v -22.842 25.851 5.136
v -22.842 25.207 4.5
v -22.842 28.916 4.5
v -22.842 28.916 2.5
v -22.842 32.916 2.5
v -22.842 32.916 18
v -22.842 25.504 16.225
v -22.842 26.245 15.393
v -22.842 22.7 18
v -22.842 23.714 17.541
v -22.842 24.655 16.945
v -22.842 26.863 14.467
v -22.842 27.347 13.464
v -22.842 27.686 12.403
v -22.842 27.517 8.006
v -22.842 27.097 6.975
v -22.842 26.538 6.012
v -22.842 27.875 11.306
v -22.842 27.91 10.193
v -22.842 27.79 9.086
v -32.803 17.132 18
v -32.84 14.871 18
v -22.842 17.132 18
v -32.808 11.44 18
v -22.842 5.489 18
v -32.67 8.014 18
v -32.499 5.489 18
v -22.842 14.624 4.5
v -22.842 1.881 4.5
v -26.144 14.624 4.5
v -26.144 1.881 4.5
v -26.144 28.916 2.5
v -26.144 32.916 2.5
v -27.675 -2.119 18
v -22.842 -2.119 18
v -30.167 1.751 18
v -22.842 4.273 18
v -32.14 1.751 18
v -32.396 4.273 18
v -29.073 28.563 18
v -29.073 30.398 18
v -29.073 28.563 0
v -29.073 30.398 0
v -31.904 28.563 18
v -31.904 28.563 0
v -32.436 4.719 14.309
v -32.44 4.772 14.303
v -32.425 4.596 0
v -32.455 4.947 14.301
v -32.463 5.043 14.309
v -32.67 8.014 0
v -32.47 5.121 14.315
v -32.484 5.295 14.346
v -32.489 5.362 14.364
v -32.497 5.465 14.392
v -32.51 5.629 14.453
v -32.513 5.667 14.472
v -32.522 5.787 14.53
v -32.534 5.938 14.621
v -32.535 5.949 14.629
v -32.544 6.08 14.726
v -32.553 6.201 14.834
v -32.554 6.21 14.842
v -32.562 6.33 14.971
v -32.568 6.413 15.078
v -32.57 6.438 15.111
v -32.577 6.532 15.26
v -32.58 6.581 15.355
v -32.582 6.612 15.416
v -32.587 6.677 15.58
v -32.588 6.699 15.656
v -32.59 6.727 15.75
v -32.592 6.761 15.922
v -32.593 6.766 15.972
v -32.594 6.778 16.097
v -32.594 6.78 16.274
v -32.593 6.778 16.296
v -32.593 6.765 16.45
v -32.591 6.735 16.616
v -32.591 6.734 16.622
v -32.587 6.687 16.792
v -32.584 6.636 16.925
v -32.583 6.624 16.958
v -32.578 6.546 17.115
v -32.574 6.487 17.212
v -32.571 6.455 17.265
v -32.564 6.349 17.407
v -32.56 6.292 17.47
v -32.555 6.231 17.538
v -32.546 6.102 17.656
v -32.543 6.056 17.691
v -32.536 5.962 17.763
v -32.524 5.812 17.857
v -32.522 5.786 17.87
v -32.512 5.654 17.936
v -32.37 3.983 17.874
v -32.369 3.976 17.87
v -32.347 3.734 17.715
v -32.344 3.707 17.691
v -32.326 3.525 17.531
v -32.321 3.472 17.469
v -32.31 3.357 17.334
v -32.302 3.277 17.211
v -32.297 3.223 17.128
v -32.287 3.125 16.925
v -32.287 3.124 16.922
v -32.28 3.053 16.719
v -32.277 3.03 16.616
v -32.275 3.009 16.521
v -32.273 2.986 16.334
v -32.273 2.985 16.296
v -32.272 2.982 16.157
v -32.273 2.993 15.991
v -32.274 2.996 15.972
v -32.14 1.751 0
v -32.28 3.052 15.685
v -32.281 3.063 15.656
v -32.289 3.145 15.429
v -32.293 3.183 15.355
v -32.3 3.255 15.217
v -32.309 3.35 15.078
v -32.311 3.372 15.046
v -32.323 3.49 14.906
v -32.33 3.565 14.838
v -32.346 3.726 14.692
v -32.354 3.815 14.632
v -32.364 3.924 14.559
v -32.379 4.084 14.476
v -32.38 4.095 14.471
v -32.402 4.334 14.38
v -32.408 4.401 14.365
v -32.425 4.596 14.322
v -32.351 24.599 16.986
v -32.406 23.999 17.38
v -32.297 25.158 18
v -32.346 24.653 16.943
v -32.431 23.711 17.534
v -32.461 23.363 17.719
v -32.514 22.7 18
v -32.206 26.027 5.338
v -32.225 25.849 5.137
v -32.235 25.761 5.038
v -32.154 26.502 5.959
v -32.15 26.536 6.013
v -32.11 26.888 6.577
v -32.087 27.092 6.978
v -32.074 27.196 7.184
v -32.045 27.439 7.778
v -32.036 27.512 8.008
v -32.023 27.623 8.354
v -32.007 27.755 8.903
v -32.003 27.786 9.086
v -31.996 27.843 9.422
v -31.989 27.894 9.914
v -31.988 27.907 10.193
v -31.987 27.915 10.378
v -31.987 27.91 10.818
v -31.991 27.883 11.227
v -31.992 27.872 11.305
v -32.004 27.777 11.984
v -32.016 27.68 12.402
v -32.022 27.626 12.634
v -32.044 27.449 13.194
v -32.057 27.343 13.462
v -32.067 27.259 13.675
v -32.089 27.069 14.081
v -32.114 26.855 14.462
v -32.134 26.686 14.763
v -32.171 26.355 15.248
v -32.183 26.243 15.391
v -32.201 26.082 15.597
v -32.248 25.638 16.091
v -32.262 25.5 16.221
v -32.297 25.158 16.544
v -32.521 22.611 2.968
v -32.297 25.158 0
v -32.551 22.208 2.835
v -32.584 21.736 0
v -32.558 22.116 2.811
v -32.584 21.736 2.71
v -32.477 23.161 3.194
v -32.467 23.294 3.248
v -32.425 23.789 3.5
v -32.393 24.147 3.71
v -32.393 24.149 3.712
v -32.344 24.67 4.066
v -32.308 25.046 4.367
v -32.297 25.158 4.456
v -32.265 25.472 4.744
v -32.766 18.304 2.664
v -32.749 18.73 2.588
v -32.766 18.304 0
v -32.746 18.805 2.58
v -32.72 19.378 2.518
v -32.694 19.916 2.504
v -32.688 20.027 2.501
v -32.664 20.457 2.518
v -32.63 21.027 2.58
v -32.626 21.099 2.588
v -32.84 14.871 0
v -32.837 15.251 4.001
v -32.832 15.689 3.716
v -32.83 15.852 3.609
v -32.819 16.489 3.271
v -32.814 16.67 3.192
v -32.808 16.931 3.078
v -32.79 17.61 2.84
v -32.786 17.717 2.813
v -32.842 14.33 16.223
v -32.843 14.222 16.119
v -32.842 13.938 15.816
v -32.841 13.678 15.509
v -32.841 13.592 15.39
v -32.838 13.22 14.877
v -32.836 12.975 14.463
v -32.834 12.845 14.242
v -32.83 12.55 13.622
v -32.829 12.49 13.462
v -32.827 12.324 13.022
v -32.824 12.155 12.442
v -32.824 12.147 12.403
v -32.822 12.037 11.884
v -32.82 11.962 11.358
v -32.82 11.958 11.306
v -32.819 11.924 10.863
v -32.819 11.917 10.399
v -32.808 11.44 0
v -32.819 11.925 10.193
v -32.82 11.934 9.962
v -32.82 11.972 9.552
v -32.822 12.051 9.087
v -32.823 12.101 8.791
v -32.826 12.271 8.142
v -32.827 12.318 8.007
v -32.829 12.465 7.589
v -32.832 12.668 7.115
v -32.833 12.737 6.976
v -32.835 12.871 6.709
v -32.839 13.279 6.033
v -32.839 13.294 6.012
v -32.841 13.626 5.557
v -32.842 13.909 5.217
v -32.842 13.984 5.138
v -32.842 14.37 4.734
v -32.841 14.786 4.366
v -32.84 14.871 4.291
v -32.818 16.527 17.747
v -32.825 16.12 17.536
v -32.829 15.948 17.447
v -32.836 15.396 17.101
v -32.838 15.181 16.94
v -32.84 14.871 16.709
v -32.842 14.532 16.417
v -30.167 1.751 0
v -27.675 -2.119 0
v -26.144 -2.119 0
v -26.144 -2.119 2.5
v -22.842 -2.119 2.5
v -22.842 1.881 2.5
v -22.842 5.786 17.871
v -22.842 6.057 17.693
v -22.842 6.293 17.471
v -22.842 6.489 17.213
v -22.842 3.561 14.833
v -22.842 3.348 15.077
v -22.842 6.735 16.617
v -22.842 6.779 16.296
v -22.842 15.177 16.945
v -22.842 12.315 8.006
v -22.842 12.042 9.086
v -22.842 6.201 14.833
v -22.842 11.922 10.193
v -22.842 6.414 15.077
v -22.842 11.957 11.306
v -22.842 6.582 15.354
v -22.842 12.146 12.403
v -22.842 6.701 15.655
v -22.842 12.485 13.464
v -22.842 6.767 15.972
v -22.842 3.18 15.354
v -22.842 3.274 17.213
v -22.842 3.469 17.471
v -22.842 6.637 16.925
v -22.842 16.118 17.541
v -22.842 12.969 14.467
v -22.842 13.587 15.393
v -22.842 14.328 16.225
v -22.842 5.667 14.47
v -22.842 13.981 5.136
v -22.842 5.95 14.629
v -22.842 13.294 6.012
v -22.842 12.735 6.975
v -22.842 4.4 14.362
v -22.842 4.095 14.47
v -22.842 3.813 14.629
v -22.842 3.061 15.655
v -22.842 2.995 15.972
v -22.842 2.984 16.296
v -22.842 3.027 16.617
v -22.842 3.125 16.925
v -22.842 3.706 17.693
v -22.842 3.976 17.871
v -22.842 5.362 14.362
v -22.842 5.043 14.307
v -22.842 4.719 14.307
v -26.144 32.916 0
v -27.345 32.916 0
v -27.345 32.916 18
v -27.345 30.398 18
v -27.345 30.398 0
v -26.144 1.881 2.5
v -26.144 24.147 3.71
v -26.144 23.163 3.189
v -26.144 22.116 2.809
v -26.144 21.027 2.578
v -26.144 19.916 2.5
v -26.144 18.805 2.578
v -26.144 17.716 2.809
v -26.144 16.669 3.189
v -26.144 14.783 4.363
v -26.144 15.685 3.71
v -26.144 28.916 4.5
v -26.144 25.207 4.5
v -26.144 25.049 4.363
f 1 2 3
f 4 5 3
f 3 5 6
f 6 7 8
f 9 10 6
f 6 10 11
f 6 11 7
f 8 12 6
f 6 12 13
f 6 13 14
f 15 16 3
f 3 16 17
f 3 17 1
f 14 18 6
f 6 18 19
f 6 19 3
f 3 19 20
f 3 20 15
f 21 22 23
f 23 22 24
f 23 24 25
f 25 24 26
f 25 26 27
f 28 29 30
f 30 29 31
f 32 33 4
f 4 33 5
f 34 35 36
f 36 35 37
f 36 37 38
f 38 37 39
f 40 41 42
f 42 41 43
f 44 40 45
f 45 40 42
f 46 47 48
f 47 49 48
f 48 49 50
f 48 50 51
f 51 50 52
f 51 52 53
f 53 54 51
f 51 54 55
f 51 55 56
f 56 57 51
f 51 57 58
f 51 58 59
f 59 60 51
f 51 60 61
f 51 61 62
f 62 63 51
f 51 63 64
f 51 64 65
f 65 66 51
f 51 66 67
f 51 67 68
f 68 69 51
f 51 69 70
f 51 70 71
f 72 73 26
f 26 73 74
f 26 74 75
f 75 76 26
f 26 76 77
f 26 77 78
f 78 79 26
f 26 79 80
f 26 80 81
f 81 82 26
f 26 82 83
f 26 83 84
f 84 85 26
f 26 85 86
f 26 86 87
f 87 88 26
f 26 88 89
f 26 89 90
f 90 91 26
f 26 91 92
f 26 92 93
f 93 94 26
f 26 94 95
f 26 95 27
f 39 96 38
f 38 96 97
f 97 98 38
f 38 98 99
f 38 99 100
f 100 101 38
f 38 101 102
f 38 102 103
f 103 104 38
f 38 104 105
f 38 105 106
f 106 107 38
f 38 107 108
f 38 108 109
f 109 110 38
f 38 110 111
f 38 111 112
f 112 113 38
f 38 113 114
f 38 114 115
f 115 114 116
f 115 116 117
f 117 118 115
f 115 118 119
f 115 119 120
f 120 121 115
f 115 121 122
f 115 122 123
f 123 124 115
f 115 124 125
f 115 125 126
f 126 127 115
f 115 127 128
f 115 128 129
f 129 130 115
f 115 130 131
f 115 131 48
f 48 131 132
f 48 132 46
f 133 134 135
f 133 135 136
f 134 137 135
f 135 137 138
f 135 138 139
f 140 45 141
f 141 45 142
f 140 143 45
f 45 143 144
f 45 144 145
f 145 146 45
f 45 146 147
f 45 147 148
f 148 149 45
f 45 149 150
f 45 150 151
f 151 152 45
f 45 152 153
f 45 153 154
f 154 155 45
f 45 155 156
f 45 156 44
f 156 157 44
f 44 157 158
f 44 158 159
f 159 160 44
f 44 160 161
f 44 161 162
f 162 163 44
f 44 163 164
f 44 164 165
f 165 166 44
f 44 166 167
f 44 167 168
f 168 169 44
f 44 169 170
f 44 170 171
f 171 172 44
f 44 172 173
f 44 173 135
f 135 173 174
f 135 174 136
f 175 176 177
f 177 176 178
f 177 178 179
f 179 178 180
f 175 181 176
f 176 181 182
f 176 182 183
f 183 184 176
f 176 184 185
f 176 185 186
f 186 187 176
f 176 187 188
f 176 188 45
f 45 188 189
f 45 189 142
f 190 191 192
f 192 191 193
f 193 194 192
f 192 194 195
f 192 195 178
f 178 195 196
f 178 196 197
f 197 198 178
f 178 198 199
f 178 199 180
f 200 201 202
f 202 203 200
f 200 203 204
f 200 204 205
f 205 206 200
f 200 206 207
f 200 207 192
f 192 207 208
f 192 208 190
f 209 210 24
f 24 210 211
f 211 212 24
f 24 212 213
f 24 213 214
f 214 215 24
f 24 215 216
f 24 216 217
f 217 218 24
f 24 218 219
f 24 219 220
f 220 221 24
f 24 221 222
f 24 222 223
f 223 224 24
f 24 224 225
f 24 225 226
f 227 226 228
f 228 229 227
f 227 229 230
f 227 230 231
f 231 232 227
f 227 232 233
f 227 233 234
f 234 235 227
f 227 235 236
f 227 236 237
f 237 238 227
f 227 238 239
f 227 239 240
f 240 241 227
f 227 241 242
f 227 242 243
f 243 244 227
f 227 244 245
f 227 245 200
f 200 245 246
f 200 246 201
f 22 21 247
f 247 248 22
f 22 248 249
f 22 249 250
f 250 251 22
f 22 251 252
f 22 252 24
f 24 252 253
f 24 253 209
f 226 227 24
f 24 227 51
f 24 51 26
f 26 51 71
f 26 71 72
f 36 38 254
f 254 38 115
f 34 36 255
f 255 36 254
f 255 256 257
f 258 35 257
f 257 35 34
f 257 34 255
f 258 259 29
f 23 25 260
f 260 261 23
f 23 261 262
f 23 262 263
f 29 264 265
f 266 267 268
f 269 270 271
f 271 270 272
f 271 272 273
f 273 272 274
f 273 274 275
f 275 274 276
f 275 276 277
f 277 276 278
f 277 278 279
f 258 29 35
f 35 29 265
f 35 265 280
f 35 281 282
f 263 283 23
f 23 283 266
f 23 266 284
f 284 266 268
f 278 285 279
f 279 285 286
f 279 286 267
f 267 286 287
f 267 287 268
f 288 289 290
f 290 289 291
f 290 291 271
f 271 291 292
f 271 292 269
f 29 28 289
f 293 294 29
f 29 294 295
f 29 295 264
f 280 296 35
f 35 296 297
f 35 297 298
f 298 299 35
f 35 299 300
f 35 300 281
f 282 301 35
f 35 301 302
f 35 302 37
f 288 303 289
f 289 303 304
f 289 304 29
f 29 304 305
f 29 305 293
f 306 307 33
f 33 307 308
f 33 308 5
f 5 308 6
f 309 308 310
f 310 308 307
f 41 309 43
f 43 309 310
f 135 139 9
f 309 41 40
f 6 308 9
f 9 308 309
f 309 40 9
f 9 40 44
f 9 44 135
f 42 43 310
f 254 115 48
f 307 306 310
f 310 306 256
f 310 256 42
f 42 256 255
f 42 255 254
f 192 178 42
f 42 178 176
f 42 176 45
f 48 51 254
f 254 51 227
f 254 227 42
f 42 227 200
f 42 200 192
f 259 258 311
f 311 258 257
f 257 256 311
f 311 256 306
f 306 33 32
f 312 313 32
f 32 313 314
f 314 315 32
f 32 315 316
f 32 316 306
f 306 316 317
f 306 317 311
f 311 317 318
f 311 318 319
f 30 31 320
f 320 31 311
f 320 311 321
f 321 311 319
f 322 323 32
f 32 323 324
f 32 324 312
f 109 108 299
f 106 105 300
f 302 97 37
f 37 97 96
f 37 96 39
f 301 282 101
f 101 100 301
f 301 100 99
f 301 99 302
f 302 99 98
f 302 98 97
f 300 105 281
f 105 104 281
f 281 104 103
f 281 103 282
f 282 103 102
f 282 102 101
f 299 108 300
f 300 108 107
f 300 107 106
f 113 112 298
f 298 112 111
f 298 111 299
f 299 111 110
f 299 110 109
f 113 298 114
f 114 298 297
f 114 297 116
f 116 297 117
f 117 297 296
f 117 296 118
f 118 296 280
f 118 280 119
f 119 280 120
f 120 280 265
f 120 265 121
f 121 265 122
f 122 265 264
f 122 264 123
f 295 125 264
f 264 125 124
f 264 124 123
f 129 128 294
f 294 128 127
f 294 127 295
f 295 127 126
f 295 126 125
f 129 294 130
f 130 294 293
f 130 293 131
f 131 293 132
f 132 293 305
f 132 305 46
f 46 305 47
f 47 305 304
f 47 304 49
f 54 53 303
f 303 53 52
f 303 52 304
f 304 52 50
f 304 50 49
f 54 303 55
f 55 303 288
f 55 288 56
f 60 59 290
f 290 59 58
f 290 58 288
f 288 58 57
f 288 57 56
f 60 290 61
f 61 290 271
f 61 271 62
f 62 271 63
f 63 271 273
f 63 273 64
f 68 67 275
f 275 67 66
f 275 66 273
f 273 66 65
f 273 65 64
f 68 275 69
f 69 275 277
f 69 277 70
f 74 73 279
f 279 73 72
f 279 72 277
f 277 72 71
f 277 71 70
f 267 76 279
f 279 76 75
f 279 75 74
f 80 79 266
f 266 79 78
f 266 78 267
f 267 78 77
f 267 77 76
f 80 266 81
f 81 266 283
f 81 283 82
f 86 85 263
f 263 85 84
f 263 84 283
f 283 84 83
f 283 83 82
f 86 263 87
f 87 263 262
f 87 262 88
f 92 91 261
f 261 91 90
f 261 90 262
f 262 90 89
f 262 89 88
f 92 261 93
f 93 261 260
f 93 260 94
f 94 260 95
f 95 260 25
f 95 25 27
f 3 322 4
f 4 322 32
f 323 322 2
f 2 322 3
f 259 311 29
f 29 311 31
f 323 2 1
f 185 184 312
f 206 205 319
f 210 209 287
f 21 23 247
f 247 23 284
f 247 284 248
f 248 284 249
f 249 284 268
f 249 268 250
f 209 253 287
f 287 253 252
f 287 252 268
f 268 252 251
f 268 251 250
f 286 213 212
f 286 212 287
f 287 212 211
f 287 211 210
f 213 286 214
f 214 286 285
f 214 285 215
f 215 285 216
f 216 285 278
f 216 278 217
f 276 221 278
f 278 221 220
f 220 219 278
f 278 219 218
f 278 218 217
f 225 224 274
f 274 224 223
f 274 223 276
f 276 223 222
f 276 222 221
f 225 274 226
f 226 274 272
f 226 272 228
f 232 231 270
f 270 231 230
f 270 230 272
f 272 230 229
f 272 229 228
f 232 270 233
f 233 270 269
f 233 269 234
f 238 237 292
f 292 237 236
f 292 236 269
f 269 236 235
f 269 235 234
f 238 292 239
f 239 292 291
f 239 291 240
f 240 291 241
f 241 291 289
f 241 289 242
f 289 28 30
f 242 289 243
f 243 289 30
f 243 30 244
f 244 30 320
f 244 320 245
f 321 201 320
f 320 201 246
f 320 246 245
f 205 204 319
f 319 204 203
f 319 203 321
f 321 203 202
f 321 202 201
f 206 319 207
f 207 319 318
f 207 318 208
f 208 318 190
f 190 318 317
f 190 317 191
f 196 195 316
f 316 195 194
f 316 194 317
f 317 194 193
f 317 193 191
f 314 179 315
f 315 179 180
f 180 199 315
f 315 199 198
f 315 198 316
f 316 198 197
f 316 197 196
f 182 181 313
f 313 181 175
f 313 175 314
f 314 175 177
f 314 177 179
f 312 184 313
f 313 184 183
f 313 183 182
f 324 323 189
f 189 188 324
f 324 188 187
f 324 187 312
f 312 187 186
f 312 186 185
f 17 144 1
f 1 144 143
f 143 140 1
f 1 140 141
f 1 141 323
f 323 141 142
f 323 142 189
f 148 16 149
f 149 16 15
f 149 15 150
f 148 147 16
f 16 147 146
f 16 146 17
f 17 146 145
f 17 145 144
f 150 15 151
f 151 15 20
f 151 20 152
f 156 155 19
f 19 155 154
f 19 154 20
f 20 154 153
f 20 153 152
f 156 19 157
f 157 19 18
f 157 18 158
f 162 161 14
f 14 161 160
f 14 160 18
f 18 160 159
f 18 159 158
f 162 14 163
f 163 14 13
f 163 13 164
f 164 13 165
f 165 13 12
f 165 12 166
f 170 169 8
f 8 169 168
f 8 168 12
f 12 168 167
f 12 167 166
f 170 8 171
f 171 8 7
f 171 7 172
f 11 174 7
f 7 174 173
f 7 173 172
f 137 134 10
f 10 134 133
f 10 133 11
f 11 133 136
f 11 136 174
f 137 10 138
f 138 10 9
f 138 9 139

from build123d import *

# Parameters (mm, degrees)
Y_KSEKLIK_EKSTR_ZYON1_DEPTH = 18
IZIM2_W                     = 4.932789915
IZIM2_H                     = 2.5
KES_EKSTR_ZYON1_DEPTH       = 50
IZIM3_R                     = 1.9
KES_EKSTR_ZYON2_DEPTH       = 50
IZIM5_W                     = 2
IZIM5_H                     = 27.034765158
KES_EKSTR_ZYON6_DEPTH       = 3.301675079
IZIM4_R                     = 8
KES_EKSTR_ZYON5_DEPTH       = 50


with BuildPart() as part:
    # Çizim1 → Yükseklik-Ekstrüzyon1 (new body)
    with BuildSketch(Plane.XY):
        with BuildLine():
            Line((-29.072656292, 30.398231235), (-27.345449894, 30.398231235))
            Line((-27.345449894, 30.398231235), (-27.345449894, 32.915968723))
            Line((-27.345449894, 32.915968723), (-22.842394814, 32.915968723))
            Line((-22.842394814, 32.915968723), (-22.842394814, -2.118796435))
            Line((-22.842394814, -2.118796435), (-27.674756319, -2.118796435))
            Line((-27.674756319, -2.118796435), (-30.167426941, 1.750867772))
            Line((-30.167426941, 1.750867772), (-32.139817972, 1.750867772))
            add(Edge.make_bspline(
                [(-32.139817972, 1.750867772), (-32.495187753, 4.885906141), (-32.864718894, 10.152165336), (-32.849440261, 19.124114906), (-32.38234085, 24.914837942), (-31.903618641, 28.562636684)],
                knots=[0.015716623, 0.015716623, 0.015716623, 0.015716623, 0.357537263, 0.585417689, 0.984003614, 0.984003614, 0.984003614, 0.984003614], degree=3))
            Line((-31.903618641, 28.562636684), (-29.072656292, 28.562636684))
            Line((-29.072656292, 28.562636684), (-29.072656292, 30.398231235))
        make_face()
    extrude(amount=Y_KSEKLIK_EKSTR_ZYON1_DEPTH)

    # Çizim2 → Kes-Ekstrüzyon1 (cut)
    with BuildSketch(Plane(origin=(0, -2.118796435, 0), x_dir=(-1, 0, 0), z_dir=(0, -1, 0))):
        with Locations((23.677674935, -1.25)):
            Rectangle(IZIM2_W, IZIM2_H)
    extrude(amount=-KES_EKSTR_ZYON1_DEPTH, mode=Mode.SUBTRACT)

    # Çizim3 → Kes-Ekstrüzyon2 (cut)
    with BuildSketch(Plane(origin=(-22.842394814, 0, 0), x_dir=(0, 0, -1), z_dir=(1, 0, 0))):
        with Locations((-16.2, 4.881203565)):
            Circle(IZIM3_R)
    extrude(amount=-KES_EKSTR_ZYON2_DEPTH, mode=Mode.SUBTRACT)

    # Çizim5 → Kes-Ekstrüzyon6 (cut)
    with BuildSketch(Plane(origin=(-22.842394814, 0, 0), x_dir=(0, 0, -1), z_dir=(1, 0, 0))):
        with Locations((-3.5, 15.398586144)):
            Rectangle(IZIM5_W, IZIM5_H)
    extrude(amount=-KES_EKSTR_ZYON6_DEPTH, mode=Mode.SUBTRACT)

    # Çizim4 → Kes-Ekstrüzyon5 (cut)
    with BuildSketch(Plane(origin=(-22.842394814, 0, 0), x_dir=(0, 0, -1), z_dir=(1, 0, 0))):
        with Locations((-10.5, 19.915968723)):
            Circle(IZIM4_R)
    extrude(amount=-KES_EKSTR_ZYON5_DEPTH, mode=Mode.SUBTRACT)


solid = part.part
